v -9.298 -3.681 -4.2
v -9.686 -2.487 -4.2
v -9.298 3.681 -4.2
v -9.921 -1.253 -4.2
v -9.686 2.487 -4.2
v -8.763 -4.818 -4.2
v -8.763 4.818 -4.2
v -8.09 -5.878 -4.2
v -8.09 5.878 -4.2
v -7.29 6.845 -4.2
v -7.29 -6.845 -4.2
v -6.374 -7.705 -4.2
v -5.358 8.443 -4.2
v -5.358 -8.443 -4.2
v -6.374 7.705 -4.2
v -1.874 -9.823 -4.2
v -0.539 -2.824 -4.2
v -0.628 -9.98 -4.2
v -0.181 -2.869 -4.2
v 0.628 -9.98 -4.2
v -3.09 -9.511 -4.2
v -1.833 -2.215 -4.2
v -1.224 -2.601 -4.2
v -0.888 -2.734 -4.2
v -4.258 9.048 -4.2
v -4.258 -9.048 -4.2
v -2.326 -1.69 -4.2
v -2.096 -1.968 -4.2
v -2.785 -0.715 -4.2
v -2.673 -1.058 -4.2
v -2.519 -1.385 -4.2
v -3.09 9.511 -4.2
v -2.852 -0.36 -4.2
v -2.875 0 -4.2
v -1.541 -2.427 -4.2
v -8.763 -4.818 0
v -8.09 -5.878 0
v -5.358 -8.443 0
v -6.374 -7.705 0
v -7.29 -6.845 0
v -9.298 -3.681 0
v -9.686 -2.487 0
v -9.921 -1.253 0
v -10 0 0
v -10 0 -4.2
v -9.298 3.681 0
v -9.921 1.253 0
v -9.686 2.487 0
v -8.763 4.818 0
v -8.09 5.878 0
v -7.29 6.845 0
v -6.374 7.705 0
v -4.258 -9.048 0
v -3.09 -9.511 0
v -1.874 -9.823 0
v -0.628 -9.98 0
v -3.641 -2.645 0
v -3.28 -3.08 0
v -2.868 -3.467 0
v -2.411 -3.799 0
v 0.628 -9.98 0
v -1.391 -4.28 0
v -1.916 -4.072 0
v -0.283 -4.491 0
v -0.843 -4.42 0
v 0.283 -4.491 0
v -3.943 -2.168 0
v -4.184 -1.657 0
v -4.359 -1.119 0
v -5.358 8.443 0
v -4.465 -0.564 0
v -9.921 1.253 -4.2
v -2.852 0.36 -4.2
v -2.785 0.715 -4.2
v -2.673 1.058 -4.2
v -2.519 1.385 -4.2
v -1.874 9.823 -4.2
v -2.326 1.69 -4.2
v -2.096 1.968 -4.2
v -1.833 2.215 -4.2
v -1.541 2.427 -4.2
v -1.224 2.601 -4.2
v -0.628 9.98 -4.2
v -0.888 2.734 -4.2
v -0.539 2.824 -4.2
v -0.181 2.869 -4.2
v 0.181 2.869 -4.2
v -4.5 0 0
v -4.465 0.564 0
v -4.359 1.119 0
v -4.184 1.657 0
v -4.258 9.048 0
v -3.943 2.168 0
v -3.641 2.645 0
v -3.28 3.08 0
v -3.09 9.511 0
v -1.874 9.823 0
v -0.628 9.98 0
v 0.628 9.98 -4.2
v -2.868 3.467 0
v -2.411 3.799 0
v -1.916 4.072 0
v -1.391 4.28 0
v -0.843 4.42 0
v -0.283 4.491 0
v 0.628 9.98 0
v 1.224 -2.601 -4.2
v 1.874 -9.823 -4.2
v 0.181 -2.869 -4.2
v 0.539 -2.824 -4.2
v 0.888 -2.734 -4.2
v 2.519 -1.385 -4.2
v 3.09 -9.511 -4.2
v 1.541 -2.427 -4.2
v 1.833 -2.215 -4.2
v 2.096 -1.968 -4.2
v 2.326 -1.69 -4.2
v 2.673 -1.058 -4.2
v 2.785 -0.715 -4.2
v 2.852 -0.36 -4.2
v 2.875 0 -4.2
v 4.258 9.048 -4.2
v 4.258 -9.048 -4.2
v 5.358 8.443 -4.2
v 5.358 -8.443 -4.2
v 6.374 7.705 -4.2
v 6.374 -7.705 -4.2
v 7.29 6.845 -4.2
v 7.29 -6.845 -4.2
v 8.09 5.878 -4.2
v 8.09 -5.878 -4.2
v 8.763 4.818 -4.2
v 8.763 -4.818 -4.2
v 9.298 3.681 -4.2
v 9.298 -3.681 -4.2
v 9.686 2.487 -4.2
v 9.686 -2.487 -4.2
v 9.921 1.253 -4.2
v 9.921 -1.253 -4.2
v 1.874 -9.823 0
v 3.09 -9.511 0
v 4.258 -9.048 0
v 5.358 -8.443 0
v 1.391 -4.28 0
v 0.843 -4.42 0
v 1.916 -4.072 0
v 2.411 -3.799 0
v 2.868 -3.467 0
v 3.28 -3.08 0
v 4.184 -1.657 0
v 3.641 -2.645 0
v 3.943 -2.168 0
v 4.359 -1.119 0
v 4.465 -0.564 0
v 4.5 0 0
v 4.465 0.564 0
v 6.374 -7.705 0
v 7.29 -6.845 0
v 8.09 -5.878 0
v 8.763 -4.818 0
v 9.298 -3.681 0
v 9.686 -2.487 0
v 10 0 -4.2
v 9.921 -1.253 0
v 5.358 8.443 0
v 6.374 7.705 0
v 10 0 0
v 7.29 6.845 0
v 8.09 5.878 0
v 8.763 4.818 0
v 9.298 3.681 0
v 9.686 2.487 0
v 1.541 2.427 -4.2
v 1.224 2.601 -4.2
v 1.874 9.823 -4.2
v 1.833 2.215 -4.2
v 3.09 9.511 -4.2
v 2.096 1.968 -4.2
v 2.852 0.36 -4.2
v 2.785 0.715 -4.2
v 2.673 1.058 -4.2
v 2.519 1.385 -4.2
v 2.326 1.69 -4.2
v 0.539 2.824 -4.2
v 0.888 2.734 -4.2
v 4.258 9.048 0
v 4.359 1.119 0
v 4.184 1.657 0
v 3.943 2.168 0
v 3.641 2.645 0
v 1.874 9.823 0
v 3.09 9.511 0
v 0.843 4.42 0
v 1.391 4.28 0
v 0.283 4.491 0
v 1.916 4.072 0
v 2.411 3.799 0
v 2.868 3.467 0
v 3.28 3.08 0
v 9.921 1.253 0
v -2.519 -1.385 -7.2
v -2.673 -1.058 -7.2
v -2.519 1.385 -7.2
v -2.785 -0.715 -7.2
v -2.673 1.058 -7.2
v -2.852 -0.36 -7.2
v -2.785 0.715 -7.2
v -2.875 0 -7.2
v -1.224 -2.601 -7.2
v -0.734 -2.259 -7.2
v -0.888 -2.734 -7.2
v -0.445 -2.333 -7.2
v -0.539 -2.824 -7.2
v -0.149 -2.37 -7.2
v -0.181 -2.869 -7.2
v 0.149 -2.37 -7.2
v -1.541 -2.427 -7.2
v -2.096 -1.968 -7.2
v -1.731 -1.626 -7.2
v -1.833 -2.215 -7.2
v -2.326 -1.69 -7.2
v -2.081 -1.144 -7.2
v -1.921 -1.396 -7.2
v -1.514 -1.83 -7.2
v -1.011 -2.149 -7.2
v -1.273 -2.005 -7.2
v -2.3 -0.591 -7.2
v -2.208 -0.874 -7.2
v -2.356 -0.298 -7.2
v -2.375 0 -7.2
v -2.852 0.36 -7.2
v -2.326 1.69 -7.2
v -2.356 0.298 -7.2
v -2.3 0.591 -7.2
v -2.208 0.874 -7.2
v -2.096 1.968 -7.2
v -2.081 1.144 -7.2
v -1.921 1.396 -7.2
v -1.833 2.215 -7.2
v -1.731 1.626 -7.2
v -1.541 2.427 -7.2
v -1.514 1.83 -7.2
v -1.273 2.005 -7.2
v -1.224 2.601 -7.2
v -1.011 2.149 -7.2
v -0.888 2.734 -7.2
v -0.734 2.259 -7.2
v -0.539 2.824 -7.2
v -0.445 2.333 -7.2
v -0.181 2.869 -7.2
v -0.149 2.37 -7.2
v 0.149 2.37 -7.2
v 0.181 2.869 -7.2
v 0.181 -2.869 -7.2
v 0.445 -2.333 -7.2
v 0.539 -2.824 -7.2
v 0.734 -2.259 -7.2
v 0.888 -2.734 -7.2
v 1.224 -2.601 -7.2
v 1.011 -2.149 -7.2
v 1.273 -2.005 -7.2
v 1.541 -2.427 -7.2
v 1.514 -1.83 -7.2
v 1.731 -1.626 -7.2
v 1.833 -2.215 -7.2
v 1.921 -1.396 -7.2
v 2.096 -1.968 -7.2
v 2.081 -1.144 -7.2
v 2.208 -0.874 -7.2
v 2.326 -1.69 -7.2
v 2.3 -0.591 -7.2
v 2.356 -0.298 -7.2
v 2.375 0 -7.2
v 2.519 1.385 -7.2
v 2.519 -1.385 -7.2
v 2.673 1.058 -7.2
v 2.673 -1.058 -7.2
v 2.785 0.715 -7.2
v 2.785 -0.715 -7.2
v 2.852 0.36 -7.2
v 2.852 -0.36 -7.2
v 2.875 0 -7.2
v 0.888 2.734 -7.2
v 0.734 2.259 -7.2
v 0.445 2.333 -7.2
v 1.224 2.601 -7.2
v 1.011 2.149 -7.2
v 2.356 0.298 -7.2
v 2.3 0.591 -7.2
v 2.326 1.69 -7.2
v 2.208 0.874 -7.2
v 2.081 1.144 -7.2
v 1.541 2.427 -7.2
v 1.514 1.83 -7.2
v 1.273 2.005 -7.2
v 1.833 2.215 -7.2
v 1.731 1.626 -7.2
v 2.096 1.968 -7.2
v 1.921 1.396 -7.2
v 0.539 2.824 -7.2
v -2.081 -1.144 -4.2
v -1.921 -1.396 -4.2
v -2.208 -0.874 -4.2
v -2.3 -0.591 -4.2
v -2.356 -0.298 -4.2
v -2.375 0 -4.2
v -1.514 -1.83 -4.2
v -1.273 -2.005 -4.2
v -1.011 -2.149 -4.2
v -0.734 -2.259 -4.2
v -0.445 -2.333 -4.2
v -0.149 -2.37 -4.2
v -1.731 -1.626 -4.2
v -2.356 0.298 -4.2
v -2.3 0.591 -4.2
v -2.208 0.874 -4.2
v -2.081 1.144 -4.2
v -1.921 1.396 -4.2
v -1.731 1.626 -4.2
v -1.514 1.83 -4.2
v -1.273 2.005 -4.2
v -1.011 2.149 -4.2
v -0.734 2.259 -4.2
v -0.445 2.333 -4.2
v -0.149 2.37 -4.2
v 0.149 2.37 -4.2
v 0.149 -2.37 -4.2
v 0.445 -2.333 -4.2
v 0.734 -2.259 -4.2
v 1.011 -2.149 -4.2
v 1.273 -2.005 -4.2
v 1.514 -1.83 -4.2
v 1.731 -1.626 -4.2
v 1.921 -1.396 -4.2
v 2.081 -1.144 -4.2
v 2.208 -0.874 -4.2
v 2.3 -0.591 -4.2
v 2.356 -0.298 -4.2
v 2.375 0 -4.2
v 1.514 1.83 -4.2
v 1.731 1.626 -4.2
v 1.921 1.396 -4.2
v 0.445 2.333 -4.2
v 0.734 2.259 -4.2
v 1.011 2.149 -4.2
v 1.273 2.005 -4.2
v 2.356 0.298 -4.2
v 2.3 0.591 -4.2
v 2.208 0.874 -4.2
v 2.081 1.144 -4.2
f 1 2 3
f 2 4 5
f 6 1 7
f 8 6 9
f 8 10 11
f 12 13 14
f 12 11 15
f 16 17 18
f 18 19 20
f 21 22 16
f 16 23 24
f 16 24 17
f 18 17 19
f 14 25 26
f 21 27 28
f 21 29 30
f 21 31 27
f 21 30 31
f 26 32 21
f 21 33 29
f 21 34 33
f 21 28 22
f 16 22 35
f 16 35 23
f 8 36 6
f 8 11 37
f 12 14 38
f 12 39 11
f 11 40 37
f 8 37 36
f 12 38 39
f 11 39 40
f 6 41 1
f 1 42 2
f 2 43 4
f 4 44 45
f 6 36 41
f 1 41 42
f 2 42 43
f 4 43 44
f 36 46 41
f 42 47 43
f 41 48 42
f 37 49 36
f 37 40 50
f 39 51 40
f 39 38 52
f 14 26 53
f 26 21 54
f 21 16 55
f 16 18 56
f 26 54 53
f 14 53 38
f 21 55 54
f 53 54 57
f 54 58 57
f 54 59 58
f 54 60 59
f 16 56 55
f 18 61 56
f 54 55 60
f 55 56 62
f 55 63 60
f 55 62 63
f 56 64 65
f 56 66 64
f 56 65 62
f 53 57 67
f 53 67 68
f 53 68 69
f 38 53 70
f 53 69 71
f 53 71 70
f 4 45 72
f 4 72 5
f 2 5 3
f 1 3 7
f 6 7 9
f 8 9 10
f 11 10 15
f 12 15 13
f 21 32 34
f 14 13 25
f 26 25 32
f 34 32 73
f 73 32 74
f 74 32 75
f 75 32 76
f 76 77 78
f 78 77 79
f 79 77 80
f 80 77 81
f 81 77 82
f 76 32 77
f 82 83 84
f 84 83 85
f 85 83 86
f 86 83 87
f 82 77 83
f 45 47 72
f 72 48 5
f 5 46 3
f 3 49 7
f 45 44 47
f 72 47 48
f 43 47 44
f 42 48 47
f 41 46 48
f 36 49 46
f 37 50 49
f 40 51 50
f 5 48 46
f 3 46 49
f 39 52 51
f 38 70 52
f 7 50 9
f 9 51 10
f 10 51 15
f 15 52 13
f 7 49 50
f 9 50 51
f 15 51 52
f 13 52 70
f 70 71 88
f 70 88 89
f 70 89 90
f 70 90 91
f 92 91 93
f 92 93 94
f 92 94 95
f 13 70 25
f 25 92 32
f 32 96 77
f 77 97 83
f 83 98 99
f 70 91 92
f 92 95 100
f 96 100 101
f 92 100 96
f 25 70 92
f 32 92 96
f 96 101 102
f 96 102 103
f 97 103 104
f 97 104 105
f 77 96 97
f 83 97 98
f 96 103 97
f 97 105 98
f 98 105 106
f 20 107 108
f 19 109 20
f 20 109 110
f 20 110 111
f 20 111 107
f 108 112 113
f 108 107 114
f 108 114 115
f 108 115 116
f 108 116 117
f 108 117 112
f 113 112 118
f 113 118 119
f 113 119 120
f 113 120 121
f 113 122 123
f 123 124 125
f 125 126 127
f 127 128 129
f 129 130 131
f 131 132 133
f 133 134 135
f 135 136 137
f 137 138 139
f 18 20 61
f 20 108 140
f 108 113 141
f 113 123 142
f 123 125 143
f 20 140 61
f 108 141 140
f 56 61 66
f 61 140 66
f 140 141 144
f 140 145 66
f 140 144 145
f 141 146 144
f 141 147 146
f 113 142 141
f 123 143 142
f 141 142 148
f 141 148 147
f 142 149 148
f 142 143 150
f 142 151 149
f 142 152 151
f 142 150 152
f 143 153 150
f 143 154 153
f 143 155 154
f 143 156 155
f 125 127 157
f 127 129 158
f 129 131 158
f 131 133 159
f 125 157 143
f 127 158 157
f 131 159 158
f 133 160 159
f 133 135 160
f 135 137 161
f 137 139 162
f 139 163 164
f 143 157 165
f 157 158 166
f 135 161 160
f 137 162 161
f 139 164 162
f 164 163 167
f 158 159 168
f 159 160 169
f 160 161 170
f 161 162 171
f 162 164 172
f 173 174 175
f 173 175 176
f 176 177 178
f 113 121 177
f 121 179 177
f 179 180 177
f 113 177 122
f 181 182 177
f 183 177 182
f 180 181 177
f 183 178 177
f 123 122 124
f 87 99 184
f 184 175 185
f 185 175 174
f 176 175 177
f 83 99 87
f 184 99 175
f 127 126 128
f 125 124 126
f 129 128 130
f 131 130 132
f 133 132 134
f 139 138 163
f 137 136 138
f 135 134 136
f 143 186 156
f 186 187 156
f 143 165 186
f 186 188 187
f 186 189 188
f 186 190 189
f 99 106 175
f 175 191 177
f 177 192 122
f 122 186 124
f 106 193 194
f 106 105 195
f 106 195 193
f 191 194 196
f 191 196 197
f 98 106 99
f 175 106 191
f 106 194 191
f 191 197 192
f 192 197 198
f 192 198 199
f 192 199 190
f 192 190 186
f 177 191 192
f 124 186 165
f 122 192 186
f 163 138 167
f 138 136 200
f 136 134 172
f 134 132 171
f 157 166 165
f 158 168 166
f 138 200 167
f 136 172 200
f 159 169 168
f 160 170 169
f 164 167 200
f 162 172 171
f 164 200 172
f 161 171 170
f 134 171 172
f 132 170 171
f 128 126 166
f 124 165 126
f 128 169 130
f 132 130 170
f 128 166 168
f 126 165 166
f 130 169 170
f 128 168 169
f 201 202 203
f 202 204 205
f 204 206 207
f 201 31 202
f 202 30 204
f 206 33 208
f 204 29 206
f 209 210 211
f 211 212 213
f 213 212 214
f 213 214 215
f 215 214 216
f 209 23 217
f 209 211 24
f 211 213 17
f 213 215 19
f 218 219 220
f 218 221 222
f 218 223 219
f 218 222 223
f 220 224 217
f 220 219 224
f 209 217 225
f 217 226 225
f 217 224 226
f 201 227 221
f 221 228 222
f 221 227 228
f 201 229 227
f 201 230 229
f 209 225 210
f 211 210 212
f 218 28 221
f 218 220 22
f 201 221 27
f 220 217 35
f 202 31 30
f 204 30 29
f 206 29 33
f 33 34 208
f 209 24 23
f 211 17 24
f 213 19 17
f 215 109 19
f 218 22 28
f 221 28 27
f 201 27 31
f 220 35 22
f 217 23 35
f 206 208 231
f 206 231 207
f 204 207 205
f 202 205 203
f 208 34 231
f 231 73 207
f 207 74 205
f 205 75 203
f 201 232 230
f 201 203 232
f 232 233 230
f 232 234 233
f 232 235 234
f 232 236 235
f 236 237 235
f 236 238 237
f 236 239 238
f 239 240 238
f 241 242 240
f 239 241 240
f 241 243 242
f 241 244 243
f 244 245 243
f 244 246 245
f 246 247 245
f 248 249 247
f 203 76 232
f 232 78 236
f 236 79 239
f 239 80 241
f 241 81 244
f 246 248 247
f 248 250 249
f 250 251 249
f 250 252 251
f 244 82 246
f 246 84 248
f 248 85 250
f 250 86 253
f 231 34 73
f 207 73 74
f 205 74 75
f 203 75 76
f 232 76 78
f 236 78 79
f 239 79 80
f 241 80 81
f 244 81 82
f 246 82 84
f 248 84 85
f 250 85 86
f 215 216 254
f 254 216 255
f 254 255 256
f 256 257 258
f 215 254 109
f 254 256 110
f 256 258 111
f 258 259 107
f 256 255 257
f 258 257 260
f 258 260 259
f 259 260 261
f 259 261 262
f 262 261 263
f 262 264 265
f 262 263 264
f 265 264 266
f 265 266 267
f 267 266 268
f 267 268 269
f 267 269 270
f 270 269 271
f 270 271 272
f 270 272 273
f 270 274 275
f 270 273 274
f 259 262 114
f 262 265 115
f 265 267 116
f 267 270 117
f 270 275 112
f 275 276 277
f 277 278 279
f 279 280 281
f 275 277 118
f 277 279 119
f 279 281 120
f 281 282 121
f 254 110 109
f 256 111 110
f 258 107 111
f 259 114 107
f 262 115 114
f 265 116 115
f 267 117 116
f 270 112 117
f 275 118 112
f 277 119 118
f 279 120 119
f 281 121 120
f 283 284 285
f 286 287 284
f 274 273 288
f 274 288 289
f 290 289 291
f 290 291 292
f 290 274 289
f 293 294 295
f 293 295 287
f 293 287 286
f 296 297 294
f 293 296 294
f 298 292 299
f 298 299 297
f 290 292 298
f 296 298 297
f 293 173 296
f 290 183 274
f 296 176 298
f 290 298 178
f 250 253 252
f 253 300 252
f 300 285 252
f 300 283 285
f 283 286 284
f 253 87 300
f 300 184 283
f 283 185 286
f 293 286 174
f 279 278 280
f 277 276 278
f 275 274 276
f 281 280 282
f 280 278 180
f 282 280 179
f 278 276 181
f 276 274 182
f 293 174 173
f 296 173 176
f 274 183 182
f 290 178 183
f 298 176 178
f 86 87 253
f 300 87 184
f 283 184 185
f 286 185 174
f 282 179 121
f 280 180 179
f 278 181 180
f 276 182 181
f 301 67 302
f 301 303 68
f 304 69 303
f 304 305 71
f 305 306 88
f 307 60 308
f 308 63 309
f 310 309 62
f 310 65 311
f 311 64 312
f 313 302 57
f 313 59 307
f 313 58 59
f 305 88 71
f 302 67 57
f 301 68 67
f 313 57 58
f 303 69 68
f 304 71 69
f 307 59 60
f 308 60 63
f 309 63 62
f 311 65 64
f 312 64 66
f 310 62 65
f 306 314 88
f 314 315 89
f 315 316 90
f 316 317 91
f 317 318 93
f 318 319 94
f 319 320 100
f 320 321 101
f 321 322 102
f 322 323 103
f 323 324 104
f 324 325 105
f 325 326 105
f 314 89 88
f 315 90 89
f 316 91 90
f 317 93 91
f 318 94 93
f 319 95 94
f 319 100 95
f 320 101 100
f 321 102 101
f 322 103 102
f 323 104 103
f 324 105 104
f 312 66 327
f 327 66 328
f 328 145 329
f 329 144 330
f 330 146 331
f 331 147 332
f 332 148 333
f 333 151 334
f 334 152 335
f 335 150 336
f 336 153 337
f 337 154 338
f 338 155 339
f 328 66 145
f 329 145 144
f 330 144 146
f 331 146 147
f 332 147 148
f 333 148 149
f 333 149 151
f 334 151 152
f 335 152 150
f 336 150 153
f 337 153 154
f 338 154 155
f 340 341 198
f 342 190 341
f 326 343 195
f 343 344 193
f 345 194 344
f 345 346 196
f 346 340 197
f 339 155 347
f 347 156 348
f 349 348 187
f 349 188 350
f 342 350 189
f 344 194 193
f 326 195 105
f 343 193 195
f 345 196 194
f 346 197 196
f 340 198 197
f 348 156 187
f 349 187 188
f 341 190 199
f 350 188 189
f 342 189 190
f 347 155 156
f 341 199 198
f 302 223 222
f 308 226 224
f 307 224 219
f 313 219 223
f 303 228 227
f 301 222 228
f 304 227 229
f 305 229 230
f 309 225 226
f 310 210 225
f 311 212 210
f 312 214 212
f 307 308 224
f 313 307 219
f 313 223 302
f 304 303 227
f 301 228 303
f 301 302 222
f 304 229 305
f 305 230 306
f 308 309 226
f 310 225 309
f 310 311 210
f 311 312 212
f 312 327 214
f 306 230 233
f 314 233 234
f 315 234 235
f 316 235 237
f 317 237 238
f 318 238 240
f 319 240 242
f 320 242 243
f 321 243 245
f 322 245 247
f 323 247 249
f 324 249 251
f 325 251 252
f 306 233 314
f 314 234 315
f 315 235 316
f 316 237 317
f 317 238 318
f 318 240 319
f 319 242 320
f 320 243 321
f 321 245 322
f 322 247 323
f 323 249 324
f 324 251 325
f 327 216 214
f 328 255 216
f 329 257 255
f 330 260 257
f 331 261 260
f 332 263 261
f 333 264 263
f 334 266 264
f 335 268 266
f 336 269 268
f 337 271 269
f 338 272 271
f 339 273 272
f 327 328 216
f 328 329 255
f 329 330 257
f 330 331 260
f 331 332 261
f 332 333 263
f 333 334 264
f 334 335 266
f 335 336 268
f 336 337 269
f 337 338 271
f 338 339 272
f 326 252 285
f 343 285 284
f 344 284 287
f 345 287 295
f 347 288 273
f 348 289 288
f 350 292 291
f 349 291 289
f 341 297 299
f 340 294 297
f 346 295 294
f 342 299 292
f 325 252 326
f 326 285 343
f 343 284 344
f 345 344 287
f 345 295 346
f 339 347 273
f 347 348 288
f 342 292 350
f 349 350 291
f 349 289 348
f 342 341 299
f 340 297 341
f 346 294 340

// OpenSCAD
$fn = 50;

difference() {
	union() {
		translate(v = [0, 0, -4.2]) {
			cylinder(h = 4.2, r = 10.0);
		}
		#translate(v = [0, 0, -7.2]) {
			cylinder(h = 7.2, r = 2.875);
		}
	}
	union() {
		translate(v = [0, 0, 0]) {
			rotate(a = [0, 0, 0]) {
				difference() {
					union() {
						translate(v = [0, 0, -7.2]) {
							cylinder(h = 7.2, r = 2.25);
						}
						translate(v = [0, 0, -4.2]) {
							cylinder(h = 4.2, r1 = 2.375, r2 = 4.5);
						}
						translate(v = [0, 0, -7.2]) {
							cylinder(h = 7.2, r = 2.375);
						}
						translate(v = [0, 0, -7.2]) {
							cylinder(h = 7.2, r = 2.25);
						}
					}
					union();
				}
			}
		}
	}
}
